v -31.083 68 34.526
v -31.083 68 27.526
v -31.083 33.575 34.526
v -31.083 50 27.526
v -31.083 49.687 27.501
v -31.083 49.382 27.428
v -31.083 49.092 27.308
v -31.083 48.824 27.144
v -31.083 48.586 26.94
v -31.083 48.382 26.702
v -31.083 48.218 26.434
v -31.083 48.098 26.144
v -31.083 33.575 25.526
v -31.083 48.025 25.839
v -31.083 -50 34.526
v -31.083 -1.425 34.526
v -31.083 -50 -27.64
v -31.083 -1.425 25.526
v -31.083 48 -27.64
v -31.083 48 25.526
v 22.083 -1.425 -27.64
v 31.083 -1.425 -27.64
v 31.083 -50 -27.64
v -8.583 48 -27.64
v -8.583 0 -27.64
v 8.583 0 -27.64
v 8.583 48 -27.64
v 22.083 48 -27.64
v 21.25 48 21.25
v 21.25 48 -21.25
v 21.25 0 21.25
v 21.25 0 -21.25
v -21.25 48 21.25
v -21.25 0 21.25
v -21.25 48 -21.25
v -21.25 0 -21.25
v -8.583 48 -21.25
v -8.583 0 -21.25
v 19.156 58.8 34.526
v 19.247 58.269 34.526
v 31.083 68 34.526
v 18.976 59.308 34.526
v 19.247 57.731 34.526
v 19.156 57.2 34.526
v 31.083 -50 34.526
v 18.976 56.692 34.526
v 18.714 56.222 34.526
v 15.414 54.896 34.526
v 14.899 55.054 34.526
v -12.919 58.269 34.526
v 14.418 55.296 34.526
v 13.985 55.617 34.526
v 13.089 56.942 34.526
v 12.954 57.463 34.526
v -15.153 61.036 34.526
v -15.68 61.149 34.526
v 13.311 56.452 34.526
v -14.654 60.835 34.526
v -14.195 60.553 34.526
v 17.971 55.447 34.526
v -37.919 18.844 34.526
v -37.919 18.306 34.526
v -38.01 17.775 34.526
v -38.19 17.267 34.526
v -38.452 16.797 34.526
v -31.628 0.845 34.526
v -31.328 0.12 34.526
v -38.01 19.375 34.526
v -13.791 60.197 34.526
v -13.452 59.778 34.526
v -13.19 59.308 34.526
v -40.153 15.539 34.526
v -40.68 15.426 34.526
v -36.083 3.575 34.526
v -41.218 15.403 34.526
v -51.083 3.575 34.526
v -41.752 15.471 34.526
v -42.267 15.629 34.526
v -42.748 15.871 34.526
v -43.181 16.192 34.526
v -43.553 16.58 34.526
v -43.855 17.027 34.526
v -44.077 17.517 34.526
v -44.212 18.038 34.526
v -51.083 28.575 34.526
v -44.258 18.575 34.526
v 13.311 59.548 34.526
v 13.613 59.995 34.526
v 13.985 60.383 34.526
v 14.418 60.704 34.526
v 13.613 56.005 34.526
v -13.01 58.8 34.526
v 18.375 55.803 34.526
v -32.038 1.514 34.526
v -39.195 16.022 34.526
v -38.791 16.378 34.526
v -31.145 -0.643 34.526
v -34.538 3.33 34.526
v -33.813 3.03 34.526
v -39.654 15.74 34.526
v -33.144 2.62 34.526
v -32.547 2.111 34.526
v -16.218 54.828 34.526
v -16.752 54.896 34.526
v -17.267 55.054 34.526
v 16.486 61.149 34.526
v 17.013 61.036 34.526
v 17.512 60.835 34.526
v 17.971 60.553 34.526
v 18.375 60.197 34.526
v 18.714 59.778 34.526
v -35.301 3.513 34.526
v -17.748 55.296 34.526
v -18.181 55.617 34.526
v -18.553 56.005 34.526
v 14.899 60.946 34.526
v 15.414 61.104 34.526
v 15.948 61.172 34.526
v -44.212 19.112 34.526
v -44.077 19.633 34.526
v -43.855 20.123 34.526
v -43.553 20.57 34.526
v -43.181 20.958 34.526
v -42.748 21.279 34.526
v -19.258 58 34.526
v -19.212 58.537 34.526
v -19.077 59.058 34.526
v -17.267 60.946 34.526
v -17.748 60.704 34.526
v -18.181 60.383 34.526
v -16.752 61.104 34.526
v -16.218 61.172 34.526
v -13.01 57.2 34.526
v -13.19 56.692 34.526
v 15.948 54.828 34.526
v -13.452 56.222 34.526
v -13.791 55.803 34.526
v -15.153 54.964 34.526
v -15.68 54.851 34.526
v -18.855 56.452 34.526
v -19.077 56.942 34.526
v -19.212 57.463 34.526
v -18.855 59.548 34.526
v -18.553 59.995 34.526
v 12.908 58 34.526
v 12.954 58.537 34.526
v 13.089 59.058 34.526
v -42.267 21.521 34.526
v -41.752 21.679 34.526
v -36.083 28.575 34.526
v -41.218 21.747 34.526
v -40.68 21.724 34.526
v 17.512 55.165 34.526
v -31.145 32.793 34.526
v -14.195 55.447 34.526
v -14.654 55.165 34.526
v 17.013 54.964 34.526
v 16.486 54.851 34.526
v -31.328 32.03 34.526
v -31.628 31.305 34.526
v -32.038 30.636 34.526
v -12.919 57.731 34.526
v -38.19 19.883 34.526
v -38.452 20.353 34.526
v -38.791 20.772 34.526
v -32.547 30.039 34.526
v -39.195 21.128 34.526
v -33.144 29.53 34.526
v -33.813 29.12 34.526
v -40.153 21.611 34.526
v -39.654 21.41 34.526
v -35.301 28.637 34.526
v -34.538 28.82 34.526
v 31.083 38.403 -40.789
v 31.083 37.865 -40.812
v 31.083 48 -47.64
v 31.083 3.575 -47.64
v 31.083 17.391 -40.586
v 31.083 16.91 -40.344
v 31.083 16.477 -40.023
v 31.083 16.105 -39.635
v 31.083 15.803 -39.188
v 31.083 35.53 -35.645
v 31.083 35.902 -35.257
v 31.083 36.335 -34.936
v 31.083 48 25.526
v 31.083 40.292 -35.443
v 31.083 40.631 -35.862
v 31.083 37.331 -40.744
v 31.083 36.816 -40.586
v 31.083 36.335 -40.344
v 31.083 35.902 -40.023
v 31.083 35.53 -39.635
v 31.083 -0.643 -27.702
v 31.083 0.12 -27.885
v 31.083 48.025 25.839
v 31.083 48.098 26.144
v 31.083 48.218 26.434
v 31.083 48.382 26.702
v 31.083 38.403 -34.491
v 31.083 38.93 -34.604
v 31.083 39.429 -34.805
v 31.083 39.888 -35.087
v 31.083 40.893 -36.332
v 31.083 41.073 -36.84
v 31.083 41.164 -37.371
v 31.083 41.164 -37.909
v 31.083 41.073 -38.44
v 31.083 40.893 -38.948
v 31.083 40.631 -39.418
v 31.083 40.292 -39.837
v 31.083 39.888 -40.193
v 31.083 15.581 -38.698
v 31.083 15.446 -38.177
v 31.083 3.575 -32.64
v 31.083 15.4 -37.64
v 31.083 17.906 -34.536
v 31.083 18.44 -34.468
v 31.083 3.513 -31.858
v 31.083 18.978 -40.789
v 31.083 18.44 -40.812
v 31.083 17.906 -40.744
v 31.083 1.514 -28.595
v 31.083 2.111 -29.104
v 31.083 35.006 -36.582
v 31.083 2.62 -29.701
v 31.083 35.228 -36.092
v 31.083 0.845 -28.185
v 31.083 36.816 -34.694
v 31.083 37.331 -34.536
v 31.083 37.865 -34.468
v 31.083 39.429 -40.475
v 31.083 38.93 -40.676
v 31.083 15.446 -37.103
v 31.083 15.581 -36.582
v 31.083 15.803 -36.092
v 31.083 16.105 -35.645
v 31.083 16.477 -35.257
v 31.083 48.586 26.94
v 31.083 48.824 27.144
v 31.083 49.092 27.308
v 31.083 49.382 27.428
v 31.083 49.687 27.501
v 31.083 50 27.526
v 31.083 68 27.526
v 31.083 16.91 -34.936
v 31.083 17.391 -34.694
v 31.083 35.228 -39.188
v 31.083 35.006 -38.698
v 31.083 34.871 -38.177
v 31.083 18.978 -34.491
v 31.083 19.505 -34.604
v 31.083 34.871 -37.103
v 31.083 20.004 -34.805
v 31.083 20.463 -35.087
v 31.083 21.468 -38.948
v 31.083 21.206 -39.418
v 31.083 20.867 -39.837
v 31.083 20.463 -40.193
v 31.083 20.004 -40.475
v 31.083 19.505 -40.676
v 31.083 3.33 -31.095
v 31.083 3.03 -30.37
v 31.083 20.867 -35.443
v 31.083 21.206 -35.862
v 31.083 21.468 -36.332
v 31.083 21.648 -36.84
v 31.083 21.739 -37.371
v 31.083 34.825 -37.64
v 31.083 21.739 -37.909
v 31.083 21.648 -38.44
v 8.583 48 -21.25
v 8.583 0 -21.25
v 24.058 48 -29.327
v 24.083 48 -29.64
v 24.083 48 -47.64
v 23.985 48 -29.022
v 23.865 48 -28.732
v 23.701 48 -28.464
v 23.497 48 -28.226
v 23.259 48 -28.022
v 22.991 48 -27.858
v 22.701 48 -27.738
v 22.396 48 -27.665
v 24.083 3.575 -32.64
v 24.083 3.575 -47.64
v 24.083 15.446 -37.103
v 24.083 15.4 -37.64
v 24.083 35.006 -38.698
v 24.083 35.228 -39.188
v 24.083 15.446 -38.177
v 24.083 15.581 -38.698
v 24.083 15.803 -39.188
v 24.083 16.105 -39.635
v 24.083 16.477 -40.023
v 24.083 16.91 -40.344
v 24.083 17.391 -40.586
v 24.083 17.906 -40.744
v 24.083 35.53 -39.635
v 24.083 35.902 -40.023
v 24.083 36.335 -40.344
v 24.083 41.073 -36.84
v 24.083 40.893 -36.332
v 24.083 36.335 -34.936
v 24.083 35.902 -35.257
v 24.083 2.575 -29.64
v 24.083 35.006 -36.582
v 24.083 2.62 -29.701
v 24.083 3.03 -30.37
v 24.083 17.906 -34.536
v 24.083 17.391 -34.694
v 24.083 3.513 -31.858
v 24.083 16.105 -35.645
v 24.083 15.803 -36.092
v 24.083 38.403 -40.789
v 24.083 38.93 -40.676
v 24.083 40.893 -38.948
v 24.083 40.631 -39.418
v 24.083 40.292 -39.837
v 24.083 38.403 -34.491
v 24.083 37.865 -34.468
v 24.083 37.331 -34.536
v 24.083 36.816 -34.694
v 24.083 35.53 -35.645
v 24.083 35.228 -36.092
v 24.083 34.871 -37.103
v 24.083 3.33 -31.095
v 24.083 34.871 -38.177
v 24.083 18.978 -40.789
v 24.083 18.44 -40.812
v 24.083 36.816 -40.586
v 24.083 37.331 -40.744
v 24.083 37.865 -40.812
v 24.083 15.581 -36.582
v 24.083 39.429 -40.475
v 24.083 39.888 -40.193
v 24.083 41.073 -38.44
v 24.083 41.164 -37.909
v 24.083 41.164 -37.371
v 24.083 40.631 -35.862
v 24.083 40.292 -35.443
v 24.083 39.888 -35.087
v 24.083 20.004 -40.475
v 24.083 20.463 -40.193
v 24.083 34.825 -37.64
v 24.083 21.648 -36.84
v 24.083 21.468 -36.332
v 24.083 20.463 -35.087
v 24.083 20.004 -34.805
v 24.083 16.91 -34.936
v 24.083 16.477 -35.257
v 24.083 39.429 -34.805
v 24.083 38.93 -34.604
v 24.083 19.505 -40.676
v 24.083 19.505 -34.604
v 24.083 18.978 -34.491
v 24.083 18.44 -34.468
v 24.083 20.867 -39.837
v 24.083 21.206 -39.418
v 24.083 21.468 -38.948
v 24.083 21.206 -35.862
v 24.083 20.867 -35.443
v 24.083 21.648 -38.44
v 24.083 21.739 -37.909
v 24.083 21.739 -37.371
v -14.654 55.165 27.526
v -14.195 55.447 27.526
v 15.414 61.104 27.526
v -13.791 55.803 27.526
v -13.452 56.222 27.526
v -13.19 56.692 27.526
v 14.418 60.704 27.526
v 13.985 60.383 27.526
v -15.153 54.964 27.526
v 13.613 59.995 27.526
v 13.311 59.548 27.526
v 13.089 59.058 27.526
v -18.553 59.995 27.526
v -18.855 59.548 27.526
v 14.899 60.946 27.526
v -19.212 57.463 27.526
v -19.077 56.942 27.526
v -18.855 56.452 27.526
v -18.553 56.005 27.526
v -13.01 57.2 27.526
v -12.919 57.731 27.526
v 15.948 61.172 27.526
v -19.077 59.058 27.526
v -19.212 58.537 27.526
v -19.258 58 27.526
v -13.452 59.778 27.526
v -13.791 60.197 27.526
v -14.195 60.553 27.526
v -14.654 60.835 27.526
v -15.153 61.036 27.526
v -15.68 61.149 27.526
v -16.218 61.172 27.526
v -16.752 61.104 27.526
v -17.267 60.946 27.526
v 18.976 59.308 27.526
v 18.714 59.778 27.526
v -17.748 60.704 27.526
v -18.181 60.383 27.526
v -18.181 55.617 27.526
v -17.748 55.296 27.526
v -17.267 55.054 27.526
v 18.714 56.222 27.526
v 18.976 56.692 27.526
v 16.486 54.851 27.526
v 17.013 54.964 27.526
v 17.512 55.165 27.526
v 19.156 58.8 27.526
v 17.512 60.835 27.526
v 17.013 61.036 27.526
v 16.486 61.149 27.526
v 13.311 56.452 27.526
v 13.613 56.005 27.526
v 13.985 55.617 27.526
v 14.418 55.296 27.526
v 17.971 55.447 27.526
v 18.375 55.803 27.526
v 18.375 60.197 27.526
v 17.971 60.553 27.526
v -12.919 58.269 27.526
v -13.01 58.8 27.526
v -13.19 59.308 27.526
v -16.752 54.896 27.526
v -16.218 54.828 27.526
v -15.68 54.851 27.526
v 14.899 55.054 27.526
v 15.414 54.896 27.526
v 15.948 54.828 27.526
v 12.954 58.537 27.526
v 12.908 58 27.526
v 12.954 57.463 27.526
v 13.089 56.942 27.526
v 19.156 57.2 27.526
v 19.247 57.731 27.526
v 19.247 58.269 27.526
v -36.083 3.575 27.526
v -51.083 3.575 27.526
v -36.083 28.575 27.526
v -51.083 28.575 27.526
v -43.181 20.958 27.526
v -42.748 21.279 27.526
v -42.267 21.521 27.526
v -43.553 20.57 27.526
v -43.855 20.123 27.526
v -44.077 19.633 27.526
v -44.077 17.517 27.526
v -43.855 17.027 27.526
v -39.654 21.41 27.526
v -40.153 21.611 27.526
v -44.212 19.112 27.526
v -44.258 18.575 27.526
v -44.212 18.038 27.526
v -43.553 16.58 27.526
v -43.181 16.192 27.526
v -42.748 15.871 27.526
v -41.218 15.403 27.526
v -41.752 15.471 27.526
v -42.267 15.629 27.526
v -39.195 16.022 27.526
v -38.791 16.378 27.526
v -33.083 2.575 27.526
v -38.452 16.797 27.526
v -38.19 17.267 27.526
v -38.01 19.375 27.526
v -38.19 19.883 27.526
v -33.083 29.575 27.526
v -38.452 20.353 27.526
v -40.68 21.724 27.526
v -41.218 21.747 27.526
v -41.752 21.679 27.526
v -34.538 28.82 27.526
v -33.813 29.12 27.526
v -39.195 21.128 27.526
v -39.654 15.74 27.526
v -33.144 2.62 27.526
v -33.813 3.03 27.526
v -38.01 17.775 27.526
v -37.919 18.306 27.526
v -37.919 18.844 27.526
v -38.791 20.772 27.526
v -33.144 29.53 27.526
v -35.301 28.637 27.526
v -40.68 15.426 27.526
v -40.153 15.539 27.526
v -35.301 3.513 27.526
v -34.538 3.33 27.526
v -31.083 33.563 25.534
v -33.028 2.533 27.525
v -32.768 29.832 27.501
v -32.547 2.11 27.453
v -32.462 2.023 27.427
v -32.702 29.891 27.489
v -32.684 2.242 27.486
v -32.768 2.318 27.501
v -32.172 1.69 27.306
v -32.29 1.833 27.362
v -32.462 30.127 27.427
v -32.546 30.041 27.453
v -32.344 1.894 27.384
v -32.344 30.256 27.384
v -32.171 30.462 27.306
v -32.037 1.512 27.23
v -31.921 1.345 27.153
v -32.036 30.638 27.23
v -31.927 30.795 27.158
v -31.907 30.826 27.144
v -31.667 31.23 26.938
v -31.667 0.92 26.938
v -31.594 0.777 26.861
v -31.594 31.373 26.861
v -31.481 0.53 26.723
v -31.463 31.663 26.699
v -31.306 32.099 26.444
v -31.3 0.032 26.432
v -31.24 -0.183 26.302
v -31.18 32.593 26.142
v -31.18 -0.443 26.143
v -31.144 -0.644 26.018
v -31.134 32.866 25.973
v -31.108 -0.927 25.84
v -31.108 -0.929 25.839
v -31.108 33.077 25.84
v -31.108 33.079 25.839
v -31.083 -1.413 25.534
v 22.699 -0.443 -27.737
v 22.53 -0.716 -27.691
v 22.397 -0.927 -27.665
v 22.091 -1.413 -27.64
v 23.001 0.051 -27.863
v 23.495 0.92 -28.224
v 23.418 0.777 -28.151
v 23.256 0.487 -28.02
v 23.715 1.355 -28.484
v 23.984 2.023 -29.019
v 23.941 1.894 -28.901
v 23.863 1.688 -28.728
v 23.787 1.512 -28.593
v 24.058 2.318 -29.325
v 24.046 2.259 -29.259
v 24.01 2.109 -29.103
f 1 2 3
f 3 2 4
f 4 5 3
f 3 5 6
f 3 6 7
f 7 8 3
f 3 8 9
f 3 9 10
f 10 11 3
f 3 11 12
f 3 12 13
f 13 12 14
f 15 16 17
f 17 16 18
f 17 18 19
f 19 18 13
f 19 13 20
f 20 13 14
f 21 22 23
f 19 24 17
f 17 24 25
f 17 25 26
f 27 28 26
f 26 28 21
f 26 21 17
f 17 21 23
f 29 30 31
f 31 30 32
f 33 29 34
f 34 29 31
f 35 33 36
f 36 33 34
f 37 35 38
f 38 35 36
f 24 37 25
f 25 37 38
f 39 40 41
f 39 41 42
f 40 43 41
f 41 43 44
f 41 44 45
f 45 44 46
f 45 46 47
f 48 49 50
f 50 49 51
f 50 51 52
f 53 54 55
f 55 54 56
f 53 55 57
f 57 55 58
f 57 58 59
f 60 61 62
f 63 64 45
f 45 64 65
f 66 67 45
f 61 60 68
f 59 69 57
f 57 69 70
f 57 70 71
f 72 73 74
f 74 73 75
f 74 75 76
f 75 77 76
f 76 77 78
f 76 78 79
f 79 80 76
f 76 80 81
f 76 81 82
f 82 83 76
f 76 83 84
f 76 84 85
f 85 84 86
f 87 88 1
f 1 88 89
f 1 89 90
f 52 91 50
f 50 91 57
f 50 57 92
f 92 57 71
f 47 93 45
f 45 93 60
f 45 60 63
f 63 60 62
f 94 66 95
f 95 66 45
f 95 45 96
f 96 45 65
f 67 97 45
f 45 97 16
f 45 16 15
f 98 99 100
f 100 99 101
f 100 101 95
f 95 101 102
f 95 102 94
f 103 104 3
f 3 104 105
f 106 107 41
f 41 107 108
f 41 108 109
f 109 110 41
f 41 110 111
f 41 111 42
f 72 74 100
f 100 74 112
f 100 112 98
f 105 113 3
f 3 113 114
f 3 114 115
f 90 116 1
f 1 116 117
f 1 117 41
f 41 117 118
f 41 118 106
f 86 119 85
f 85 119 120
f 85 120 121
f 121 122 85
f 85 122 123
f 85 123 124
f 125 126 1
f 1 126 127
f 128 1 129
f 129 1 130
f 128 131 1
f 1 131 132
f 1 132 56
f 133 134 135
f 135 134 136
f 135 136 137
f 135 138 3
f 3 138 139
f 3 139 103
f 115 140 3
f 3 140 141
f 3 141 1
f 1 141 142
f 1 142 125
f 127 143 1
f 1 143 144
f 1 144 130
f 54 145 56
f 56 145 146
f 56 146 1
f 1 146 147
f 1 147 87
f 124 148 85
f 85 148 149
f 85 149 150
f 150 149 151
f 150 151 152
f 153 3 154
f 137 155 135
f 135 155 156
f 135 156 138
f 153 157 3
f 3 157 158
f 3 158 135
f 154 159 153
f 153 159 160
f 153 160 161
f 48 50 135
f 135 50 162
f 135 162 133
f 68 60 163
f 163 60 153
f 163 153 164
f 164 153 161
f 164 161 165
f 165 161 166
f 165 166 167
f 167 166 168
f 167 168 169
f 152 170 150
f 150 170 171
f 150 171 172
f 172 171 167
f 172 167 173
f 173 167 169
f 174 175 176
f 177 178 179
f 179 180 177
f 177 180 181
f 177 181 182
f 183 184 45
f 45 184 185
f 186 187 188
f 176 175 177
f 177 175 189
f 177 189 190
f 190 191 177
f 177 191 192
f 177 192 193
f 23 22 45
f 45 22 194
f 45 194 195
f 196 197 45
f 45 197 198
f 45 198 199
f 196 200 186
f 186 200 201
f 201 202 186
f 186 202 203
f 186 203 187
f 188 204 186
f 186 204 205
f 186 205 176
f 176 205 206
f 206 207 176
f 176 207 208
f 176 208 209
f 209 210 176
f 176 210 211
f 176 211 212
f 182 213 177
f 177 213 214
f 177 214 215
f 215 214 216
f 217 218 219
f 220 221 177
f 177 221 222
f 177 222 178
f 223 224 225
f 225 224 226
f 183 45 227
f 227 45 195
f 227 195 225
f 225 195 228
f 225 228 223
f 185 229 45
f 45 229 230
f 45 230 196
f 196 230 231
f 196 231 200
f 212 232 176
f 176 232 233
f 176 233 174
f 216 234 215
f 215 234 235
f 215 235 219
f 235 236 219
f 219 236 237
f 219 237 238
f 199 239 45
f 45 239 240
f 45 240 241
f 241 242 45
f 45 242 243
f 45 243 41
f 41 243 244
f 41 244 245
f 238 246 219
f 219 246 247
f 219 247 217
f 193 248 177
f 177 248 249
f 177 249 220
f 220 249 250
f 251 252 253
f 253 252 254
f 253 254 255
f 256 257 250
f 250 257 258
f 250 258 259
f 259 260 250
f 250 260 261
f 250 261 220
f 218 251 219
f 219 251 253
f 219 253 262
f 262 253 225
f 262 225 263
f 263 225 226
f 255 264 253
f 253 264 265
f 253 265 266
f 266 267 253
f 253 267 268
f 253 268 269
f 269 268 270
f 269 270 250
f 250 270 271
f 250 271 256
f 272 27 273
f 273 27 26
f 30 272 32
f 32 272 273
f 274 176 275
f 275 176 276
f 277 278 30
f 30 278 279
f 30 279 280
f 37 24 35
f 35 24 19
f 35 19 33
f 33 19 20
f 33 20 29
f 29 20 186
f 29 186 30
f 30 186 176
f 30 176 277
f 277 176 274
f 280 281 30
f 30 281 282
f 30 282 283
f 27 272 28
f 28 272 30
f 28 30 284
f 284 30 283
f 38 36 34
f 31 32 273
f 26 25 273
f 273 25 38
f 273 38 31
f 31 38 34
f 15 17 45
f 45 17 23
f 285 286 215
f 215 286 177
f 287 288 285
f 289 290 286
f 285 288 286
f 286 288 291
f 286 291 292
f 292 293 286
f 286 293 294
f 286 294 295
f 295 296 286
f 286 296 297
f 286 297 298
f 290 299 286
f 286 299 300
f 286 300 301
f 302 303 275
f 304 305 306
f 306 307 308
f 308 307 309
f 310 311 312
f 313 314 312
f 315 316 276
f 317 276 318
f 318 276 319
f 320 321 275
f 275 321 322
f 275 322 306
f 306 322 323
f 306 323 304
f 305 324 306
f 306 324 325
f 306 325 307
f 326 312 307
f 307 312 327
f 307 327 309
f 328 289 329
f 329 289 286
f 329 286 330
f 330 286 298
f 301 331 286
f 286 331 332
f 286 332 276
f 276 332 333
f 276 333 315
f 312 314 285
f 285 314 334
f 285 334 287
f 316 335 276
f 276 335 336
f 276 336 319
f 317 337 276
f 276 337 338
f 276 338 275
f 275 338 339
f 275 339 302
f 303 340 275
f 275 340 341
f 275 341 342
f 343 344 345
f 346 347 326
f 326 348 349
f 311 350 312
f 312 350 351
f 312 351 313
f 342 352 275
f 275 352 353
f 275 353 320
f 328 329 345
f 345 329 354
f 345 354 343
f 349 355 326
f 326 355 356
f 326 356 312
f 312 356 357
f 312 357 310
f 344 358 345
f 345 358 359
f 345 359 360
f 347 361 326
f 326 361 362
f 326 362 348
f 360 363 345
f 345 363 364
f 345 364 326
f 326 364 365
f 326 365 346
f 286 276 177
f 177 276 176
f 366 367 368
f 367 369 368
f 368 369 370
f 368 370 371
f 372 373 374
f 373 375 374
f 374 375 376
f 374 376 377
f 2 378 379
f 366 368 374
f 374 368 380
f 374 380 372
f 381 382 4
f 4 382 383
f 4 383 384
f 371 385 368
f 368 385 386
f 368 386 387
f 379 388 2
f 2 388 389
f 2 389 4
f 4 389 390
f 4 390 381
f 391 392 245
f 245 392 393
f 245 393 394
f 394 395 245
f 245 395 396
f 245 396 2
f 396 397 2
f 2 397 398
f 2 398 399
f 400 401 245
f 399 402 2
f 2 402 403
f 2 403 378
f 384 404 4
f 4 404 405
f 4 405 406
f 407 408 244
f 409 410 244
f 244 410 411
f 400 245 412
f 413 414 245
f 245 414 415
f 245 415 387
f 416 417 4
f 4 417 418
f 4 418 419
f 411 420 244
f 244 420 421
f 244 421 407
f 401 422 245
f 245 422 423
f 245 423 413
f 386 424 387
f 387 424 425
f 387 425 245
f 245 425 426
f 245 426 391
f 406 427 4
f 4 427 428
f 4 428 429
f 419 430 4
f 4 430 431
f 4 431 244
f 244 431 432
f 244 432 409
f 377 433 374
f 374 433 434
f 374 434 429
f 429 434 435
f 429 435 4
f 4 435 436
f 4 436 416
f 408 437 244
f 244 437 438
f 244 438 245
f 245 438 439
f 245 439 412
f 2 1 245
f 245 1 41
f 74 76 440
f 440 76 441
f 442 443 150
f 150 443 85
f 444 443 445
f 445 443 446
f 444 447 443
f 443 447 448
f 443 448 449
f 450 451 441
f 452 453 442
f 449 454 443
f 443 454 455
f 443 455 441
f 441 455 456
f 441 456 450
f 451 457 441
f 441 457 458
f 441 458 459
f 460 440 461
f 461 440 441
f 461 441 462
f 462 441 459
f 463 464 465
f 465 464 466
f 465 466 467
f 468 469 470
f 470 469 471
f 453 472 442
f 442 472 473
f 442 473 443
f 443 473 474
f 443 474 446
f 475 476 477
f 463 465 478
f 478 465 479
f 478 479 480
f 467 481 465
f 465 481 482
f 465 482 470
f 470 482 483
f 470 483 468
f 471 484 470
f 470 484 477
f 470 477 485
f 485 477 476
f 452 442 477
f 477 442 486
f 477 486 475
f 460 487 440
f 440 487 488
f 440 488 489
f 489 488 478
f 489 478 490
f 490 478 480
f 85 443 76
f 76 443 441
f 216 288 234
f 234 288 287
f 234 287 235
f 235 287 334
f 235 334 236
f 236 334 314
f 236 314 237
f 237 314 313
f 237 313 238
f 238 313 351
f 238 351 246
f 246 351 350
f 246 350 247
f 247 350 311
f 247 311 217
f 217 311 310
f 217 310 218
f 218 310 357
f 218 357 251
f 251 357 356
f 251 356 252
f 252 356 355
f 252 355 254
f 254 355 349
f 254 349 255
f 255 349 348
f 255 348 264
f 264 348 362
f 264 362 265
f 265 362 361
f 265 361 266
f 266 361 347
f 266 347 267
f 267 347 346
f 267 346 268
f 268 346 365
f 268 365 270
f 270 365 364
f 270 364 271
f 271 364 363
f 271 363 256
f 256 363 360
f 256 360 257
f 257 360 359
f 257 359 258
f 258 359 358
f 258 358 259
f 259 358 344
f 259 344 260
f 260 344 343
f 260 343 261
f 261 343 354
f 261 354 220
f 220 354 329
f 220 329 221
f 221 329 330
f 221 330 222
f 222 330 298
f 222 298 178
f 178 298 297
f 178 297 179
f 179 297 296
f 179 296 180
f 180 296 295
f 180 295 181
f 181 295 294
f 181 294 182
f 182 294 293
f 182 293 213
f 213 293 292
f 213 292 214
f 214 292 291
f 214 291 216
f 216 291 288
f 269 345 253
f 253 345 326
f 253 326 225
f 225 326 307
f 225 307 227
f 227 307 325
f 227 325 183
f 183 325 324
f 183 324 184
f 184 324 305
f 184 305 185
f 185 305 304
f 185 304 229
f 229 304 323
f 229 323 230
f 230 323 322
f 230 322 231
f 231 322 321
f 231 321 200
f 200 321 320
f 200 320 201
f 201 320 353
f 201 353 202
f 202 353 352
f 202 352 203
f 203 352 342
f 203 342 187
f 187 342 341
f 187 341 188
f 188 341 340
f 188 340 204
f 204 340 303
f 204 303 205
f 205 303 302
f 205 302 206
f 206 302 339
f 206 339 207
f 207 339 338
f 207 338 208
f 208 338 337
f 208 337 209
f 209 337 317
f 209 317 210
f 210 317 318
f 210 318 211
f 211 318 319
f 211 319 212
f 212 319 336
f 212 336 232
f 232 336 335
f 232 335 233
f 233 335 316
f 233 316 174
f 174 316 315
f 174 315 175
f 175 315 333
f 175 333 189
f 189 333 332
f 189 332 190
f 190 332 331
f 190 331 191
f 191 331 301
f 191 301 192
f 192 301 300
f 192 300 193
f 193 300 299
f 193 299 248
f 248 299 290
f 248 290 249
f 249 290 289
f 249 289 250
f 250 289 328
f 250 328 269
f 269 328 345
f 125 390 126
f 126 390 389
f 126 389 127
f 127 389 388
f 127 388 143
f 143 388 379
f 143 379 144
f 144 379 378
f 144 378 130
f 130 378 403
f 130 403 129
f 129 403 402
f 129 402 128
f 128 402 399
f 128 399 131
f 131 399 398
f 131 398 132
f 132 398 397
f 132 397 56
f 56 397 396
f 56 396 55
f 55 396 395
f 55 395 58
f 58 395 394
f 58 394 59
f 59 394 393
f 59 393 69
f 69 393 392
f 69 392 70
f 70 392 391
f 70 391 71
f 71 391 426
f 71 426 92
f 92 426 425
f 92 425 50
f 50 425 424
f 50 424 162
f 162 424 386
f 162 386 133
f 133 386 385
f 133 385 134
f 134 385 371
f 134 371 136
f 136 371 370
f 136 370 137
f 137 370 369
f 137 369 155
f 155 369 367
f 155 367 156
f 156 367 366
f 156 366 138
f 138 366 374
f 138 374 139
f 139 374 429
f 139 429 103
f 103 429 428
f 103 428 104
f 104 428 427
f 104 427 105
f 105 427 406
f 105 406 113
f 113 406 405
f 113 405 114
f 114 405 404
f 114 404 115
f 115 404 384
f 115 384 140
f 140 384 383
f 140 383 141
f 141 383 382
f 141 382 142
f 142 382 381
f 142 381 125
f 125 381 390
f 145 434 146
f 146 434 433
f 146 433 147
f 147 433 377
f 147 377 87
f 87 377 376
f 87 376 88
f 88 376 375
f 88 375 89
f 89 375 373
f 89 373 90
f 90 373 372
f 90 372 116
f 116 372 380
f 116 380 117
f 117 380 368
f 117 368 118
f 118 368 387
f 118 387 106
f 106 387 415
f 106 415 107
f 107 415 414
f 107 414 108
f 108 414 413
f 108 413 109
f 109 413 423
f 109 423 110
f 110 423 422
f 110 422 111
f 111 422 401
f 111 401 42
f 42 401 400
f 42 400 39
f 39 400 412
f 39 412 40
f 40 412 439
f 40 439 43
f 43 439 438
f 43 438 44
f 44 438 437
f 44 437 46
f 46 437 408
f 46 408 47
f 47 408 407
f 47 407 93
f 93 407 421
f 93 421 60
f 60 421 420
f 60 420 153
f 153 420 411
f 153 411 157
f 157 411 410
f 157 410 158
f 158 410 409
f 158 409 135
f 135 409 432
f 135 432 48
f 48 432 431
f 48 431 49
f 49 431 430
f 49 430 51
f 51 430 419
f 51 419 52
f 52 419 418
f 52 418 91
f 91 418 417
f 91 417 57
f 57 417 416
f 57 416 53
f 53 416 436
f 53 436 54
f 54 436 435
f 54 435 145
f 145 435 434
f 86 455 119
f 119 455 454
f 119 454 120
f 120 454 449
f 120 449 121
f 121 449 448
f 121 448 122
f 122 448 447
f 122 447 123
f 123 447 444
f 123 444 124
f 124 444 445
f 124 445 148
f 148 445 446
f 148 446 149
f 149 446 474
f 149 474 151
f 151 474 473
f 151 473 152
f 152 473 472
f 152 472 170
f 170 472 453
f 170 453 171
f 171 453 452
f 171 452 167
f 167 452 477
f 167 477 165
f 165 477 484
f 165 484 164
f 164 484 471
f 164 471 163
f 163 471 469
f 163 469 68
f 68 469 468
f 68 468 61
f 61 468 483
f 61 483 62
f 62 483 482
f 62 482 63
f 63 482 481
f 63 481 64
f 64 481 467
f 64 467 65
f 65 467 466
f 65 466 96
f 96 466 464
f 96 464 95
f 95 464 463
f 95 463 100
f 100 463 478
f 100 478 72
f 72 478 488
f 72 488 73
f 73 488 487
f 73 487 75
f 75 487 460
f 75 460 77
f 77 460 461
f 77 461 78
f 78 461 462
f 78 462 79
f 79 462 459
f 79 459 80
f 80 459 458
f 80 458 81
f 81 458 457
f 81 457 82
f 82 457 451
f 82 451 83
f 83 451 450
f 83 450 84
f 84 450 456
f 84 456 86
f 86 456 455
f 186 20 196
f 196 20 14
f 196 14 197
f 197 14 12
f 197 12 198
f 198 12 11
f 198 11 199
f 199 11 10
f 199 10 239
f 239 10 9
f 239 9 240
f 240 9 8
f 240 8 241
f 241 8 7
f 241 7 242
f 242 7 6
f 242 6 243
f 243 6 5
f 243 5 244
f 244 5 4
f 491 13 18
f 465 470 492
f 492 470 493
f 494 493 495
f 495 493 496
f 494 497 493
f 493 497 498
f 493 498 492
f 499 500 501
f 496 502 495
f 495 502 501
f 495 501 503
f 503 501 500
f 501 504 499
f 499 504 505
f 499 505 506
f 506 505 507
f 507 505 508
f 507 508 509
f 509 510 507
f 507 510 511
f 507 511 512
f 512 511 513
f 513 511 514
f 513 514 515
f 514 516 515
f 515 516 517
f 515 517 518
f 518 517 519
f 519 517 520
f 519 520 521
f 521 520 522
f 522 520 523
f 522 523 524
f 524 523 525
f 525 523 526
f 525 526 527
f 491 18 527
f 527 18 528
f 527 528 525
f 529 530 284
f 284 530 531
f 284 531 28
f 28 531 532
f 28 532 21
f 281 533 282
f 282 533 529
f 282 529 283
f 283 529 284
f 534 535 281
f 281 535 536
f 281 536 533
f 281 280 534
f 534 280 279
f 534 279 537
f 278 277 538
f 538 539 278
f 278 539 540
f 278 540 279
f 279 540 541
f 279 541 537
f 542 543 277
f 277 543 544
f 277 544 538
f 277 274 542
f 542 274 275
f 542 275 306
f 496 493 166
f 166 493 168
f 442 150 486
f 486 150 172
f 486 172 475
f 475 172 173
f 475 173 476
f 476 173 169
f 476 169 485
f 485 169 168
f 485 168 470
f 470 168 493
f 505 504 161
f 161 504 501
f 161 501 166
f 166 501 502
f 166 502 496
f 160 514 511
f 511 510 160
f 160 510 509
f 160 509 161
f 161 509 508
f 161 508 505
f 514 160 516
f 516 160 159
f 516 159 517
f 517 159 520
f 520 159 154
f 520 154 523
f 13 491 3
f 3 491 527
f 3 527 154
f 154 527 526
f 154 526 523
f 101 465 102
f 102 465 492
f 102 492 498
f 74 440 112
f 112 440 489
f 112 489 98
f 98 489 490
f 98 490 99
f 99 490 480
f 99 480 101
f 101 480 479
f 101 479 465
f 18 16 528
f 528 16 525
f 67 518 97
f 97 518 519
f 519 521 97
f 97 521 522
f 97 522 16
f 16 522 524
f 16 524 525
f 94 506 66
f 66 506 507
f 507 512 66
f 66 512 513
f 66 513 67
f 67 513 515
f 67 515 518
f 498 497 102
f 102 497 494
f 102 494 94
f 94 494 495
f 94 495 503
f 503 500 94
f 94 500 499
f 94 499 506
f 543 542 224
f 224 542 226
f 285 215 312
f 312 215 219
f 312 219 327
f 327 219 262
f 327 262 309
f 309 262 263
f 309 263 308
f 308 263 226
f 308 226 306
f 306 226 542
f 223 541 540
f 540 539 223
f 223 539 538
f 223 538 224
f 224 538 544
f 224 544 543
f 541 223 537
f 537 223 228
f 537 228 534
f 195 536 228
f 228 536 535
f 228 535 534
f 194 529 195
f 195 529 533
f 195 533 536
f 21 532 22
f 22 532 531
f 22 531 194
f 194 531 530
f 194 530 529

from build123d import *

# Parameters (mm, degrees)
BOSS_EXTRUDE1_DEPTH = 48
SKETCH2_W           = 62.166
SKETCH2_H           = 62.166
BOSS_EXTRUDE2_DEPTH = 50
SKETCH5_W           = 7
SKETCH5_H           = 44.425
BOSS_EXTRUDE3_DEPTH = 20
SKETCH8_W           = 62.166
SKETCH8_H           = 7
BOSS_EXTRUDE4_DEPTH = 20
SKETCH10_W          = 7
SKETCH10_H          = 25
BOSS_EXTRUDE5_DEPTH = 20
SKETCH7_R           = 3.175
CUT_EXTRUDE1_DEPTH  = 112.997755
SKETCH9_R           = 3.175
CUT_EXTRUDE2_DEPTH  = 114.505068
SKETCH11_R          = 3.175
CUT_EXTRUDE3_DEPTH  = 114.505068
FILLET1_R           = 2
FILLET2_START       = 25.526
FILLET2_DEPTH       = 9
FILLET2_START_2     = 22.083
FILLET2_2_DEPTH     = 9
FILLET2_START_3     = -2
FILLET2_3_DEPTH     = 37


with BuildPart() as part:
    # Sketch1 → Boss-Extrude1 (new body)
    with BuildSketch(Plane(origin=(0, 0, 0), x_dir=(1, 0, 0), z_dir=(0, 1, 0))):
        Polygon((8.583, 21.25), (8.583, 27.64), (31.083, 27.64), (31.083, -34.526), (-31.083, -34.526), (-31.083, 27.64), (-8.583, 27.64), (-8.583, 21.25), (-21.25, 21.25), (-21.25, -21.25), (21.25, -21.25), (21.25, 21.25), align=None)
    extrude(amount=BOSS_EXTRUDE1_DEPTH)

    # Sketch2 → Boss-Extrude2 (add)
    with BuildSketch(Plane(origin=(0, 0, 0), x_dir=(1, 0, 0), z_dir=(0, 1, 0))):
        with Locations((0, -3.443)):
            Rectangle(SKETCH2_W, SKETCH2_H)
    extrude(amount=-BOSS_EXTRUDE2_DEPTH)

    # Sketch5 → Boss-Extrude3 (add)
    with BuildSketch(Plane(origin=(0, 0, -27.64), x_dir=(-1, 0, 0), z_dir=(0, 0, -1))):
        with Locations((-27.583, 25.7875)):
            Rectangle(SKETCH5_W, SKETCH5_H)
    extrude(amount=BOSS_EXTRUDE3_DEPTH)

    # Sketch8 → Boss-Extrude4 (add)
    with BuildSketch(Plane(origin=(0, 48, 0), x_dir=(1, 0, 0), z_dir=(0, 1, 0))):
        with Locations((0, -31.026)):
            Rectangle(SKETCH8_W, SKETCH8_H)
    extrude(amount=BOSS_EXTRUDE4_DEPTH)

    # Sketch10 → Boss-Extrude5 (add)
    with BuildSketch(Plane.ZY.offset(31.083)):
        with Locations((31.026, 16.075)):
            Rectangle(SKETCH10_W, SKETCH10_H)
    extrude(amount=BOSS_EXTRUDE5_DEPTH)

    # Sketch7 → Cut-Extrude1 (cut, through all)
    with BuildSketch(Plane.ZY.offset(-24.083)):
        with Locations(Location((-37.64, 38, 0), (0, 0, 270))):
            Circle(SKETCH7_R)
        with Locations(Location((-37.64, 18.575, 0), (0, 0, 270))):
            Circle(SKETCH7_R)
    extrude(amount=-CUT_EXTRUDE1_DEPTH, mode=Mode.SUBTRACT)

    # Sketch9 → Cut-Extrude2 (cut, through all)
    with BuildSketch(Plane(origin=(0, 0, 27.526), x_dir=(-1, 0, 0), z_dir=(0, 0, -1))):
        with Locations((-16.083, 58)):
            Circle(SKETCH9_R)
        with Locations((16.083, 58)):
            Circle(SKETCH9_R)
    extrude(amount=-CUT_EXTRUDE2_DEPTH, mode=Mode.SUBTRACT)

    # Sketch11 → Cut-Extrude3 (cut, through all)
    with BuildSketch(Plane(origin=(0, 0, 27.526), x_dir=(-1, 0, 0), z_dir=(0, 0, -1))):
        with Locations((41.083, 18.575)):
            Circle(SKETCH11_R)
    extrude(amount=-CUT_EXTRUDE3_DEPTH, mode=Mode.SUBTRACT)

    # Fillet1
    # the kernel refuses this fillet: 2 mm, written as the material it adds along each edge
    with BuildSketch(Plane(origin=(31.083, 48, 27.526), x_dir=(0, 0, -1), z_dir=(-1, 0, 0))) as fillet1_piece_1:
        with BuildLine():
            CenterArc((FILLET1_R, -FILLET1_R), FILLET1_R, 90, 90)
            Line((0, -FILLET1_R), (0, 0))
            Line((0, 0), (FILLET1_R, 0))
        make_face()
    extrude(amount=62.166)
    with BuildSketch(Plane(origin=(-31.083, 28.575, 27.526), x_dir=(0, 0, -1), z_dir=(0, -1, 0))) as fillet1_piece_2:
        with BuildLine():
            CenterArc((FILLET1_R, -FILLET1_R), FILLET1_R, 90, 90)
            Line((0, -FILLET1_R), (0, 0))
            Line((0, 0), (FILLET1_R, 0))
        make_face()
    extrude(amount=25)
    with BuildSketch(Plane(origin=(24.083, 48, -27.64), x_dir=(-1, 0, 0), z_dir=(0, -1, 0))) as fillet1_piece_3:
        with BuildLine():
            CenterArc((FILLET1_R, FILLET1_R), FILLET1_R, 180, 90)
            Line((0, FILLET1_R), (0, 0))
            Line((0, 0), (FILLET1_R, 0))
        make_face()
    extrude(amount=44.425)

    # Fillet2: read off the stored shape, not the designer's step
    # Fillet2 outline → Fillet2 (add)
    with BuildSketch(Plane.XY.offset(FILLET2_START)):
        with BuildLine():
            Line((-31.083, -1.425), (-31.083, 3.575))
            Line((-31.083, 3.575), (-36.083, 3.575))
            ThreePointArc((-36.083, 3.575), (-32.547466, 2.110534), (-31.083, -1.425))
        make_face()
        with BuildLine():
            ThreePointArc((-31.083, 33.575), (-32.547466, 30.039466), (-36.083, 28.575))
            Line((-36.083, 28.575), (-31.083, 28.575))
            Line((-31.083, 28.575), (-31.083, 33.575))
        make_face()
    extrude(amount=FILLET2_DEPTH)

    # Fillet2 2 outline → Fillet2 2 (add)
    with BuildSketch(Plane.YZ.offset(FILLET2_START_2)):
        with BuildLine():
            ThreePointArc((-1.425, -27.64), (2.110534, -29.104466), (3.575, -32.64))
            Line((3.575, -32.64), (3.575, -27.64))
            Line((3.575, -27.64), (-1.425, -27.64))
        make_face()
    extrude(amount=FILLET2_2_DEPTH)

    # Fillet2 3 outline → Fillet2 3 (cut)
    with BuildSketch(Plane(origin=(0, 0, 0), x_dir=(1, 0, 0), z_dir=(0, 1, 0)).offset(FILLET2_START_3)):
        with BuildLine():
            ThreePointArc((-33.083, -27.526), (-31.668786, -26.940214), (-31.083, -25.526))
            Line((-31.083, -25.526), (-36.083, -25.526))
            Line((-36.083, -25.526), (-36.083, -27.526))
            Line((-36.083, -27.526), (-33.083, -27.526))
        make_face()
        with BuildLine():
            Line((24.083, 32.64), (22.083, 32.64))
            Line((22.083, 32.64), (22.083, 27.64))
            ThreePointArc((22.083, 27.64), (23.497214, 28.225786), (24.083, 29.64))
            Line((24.083, 29.64), (24.083, 32.64))
        make_face()
    extrude(amount=FILLET2_3_DEPTH, mode=Mode.SUBTRACT)


solid = part.part
